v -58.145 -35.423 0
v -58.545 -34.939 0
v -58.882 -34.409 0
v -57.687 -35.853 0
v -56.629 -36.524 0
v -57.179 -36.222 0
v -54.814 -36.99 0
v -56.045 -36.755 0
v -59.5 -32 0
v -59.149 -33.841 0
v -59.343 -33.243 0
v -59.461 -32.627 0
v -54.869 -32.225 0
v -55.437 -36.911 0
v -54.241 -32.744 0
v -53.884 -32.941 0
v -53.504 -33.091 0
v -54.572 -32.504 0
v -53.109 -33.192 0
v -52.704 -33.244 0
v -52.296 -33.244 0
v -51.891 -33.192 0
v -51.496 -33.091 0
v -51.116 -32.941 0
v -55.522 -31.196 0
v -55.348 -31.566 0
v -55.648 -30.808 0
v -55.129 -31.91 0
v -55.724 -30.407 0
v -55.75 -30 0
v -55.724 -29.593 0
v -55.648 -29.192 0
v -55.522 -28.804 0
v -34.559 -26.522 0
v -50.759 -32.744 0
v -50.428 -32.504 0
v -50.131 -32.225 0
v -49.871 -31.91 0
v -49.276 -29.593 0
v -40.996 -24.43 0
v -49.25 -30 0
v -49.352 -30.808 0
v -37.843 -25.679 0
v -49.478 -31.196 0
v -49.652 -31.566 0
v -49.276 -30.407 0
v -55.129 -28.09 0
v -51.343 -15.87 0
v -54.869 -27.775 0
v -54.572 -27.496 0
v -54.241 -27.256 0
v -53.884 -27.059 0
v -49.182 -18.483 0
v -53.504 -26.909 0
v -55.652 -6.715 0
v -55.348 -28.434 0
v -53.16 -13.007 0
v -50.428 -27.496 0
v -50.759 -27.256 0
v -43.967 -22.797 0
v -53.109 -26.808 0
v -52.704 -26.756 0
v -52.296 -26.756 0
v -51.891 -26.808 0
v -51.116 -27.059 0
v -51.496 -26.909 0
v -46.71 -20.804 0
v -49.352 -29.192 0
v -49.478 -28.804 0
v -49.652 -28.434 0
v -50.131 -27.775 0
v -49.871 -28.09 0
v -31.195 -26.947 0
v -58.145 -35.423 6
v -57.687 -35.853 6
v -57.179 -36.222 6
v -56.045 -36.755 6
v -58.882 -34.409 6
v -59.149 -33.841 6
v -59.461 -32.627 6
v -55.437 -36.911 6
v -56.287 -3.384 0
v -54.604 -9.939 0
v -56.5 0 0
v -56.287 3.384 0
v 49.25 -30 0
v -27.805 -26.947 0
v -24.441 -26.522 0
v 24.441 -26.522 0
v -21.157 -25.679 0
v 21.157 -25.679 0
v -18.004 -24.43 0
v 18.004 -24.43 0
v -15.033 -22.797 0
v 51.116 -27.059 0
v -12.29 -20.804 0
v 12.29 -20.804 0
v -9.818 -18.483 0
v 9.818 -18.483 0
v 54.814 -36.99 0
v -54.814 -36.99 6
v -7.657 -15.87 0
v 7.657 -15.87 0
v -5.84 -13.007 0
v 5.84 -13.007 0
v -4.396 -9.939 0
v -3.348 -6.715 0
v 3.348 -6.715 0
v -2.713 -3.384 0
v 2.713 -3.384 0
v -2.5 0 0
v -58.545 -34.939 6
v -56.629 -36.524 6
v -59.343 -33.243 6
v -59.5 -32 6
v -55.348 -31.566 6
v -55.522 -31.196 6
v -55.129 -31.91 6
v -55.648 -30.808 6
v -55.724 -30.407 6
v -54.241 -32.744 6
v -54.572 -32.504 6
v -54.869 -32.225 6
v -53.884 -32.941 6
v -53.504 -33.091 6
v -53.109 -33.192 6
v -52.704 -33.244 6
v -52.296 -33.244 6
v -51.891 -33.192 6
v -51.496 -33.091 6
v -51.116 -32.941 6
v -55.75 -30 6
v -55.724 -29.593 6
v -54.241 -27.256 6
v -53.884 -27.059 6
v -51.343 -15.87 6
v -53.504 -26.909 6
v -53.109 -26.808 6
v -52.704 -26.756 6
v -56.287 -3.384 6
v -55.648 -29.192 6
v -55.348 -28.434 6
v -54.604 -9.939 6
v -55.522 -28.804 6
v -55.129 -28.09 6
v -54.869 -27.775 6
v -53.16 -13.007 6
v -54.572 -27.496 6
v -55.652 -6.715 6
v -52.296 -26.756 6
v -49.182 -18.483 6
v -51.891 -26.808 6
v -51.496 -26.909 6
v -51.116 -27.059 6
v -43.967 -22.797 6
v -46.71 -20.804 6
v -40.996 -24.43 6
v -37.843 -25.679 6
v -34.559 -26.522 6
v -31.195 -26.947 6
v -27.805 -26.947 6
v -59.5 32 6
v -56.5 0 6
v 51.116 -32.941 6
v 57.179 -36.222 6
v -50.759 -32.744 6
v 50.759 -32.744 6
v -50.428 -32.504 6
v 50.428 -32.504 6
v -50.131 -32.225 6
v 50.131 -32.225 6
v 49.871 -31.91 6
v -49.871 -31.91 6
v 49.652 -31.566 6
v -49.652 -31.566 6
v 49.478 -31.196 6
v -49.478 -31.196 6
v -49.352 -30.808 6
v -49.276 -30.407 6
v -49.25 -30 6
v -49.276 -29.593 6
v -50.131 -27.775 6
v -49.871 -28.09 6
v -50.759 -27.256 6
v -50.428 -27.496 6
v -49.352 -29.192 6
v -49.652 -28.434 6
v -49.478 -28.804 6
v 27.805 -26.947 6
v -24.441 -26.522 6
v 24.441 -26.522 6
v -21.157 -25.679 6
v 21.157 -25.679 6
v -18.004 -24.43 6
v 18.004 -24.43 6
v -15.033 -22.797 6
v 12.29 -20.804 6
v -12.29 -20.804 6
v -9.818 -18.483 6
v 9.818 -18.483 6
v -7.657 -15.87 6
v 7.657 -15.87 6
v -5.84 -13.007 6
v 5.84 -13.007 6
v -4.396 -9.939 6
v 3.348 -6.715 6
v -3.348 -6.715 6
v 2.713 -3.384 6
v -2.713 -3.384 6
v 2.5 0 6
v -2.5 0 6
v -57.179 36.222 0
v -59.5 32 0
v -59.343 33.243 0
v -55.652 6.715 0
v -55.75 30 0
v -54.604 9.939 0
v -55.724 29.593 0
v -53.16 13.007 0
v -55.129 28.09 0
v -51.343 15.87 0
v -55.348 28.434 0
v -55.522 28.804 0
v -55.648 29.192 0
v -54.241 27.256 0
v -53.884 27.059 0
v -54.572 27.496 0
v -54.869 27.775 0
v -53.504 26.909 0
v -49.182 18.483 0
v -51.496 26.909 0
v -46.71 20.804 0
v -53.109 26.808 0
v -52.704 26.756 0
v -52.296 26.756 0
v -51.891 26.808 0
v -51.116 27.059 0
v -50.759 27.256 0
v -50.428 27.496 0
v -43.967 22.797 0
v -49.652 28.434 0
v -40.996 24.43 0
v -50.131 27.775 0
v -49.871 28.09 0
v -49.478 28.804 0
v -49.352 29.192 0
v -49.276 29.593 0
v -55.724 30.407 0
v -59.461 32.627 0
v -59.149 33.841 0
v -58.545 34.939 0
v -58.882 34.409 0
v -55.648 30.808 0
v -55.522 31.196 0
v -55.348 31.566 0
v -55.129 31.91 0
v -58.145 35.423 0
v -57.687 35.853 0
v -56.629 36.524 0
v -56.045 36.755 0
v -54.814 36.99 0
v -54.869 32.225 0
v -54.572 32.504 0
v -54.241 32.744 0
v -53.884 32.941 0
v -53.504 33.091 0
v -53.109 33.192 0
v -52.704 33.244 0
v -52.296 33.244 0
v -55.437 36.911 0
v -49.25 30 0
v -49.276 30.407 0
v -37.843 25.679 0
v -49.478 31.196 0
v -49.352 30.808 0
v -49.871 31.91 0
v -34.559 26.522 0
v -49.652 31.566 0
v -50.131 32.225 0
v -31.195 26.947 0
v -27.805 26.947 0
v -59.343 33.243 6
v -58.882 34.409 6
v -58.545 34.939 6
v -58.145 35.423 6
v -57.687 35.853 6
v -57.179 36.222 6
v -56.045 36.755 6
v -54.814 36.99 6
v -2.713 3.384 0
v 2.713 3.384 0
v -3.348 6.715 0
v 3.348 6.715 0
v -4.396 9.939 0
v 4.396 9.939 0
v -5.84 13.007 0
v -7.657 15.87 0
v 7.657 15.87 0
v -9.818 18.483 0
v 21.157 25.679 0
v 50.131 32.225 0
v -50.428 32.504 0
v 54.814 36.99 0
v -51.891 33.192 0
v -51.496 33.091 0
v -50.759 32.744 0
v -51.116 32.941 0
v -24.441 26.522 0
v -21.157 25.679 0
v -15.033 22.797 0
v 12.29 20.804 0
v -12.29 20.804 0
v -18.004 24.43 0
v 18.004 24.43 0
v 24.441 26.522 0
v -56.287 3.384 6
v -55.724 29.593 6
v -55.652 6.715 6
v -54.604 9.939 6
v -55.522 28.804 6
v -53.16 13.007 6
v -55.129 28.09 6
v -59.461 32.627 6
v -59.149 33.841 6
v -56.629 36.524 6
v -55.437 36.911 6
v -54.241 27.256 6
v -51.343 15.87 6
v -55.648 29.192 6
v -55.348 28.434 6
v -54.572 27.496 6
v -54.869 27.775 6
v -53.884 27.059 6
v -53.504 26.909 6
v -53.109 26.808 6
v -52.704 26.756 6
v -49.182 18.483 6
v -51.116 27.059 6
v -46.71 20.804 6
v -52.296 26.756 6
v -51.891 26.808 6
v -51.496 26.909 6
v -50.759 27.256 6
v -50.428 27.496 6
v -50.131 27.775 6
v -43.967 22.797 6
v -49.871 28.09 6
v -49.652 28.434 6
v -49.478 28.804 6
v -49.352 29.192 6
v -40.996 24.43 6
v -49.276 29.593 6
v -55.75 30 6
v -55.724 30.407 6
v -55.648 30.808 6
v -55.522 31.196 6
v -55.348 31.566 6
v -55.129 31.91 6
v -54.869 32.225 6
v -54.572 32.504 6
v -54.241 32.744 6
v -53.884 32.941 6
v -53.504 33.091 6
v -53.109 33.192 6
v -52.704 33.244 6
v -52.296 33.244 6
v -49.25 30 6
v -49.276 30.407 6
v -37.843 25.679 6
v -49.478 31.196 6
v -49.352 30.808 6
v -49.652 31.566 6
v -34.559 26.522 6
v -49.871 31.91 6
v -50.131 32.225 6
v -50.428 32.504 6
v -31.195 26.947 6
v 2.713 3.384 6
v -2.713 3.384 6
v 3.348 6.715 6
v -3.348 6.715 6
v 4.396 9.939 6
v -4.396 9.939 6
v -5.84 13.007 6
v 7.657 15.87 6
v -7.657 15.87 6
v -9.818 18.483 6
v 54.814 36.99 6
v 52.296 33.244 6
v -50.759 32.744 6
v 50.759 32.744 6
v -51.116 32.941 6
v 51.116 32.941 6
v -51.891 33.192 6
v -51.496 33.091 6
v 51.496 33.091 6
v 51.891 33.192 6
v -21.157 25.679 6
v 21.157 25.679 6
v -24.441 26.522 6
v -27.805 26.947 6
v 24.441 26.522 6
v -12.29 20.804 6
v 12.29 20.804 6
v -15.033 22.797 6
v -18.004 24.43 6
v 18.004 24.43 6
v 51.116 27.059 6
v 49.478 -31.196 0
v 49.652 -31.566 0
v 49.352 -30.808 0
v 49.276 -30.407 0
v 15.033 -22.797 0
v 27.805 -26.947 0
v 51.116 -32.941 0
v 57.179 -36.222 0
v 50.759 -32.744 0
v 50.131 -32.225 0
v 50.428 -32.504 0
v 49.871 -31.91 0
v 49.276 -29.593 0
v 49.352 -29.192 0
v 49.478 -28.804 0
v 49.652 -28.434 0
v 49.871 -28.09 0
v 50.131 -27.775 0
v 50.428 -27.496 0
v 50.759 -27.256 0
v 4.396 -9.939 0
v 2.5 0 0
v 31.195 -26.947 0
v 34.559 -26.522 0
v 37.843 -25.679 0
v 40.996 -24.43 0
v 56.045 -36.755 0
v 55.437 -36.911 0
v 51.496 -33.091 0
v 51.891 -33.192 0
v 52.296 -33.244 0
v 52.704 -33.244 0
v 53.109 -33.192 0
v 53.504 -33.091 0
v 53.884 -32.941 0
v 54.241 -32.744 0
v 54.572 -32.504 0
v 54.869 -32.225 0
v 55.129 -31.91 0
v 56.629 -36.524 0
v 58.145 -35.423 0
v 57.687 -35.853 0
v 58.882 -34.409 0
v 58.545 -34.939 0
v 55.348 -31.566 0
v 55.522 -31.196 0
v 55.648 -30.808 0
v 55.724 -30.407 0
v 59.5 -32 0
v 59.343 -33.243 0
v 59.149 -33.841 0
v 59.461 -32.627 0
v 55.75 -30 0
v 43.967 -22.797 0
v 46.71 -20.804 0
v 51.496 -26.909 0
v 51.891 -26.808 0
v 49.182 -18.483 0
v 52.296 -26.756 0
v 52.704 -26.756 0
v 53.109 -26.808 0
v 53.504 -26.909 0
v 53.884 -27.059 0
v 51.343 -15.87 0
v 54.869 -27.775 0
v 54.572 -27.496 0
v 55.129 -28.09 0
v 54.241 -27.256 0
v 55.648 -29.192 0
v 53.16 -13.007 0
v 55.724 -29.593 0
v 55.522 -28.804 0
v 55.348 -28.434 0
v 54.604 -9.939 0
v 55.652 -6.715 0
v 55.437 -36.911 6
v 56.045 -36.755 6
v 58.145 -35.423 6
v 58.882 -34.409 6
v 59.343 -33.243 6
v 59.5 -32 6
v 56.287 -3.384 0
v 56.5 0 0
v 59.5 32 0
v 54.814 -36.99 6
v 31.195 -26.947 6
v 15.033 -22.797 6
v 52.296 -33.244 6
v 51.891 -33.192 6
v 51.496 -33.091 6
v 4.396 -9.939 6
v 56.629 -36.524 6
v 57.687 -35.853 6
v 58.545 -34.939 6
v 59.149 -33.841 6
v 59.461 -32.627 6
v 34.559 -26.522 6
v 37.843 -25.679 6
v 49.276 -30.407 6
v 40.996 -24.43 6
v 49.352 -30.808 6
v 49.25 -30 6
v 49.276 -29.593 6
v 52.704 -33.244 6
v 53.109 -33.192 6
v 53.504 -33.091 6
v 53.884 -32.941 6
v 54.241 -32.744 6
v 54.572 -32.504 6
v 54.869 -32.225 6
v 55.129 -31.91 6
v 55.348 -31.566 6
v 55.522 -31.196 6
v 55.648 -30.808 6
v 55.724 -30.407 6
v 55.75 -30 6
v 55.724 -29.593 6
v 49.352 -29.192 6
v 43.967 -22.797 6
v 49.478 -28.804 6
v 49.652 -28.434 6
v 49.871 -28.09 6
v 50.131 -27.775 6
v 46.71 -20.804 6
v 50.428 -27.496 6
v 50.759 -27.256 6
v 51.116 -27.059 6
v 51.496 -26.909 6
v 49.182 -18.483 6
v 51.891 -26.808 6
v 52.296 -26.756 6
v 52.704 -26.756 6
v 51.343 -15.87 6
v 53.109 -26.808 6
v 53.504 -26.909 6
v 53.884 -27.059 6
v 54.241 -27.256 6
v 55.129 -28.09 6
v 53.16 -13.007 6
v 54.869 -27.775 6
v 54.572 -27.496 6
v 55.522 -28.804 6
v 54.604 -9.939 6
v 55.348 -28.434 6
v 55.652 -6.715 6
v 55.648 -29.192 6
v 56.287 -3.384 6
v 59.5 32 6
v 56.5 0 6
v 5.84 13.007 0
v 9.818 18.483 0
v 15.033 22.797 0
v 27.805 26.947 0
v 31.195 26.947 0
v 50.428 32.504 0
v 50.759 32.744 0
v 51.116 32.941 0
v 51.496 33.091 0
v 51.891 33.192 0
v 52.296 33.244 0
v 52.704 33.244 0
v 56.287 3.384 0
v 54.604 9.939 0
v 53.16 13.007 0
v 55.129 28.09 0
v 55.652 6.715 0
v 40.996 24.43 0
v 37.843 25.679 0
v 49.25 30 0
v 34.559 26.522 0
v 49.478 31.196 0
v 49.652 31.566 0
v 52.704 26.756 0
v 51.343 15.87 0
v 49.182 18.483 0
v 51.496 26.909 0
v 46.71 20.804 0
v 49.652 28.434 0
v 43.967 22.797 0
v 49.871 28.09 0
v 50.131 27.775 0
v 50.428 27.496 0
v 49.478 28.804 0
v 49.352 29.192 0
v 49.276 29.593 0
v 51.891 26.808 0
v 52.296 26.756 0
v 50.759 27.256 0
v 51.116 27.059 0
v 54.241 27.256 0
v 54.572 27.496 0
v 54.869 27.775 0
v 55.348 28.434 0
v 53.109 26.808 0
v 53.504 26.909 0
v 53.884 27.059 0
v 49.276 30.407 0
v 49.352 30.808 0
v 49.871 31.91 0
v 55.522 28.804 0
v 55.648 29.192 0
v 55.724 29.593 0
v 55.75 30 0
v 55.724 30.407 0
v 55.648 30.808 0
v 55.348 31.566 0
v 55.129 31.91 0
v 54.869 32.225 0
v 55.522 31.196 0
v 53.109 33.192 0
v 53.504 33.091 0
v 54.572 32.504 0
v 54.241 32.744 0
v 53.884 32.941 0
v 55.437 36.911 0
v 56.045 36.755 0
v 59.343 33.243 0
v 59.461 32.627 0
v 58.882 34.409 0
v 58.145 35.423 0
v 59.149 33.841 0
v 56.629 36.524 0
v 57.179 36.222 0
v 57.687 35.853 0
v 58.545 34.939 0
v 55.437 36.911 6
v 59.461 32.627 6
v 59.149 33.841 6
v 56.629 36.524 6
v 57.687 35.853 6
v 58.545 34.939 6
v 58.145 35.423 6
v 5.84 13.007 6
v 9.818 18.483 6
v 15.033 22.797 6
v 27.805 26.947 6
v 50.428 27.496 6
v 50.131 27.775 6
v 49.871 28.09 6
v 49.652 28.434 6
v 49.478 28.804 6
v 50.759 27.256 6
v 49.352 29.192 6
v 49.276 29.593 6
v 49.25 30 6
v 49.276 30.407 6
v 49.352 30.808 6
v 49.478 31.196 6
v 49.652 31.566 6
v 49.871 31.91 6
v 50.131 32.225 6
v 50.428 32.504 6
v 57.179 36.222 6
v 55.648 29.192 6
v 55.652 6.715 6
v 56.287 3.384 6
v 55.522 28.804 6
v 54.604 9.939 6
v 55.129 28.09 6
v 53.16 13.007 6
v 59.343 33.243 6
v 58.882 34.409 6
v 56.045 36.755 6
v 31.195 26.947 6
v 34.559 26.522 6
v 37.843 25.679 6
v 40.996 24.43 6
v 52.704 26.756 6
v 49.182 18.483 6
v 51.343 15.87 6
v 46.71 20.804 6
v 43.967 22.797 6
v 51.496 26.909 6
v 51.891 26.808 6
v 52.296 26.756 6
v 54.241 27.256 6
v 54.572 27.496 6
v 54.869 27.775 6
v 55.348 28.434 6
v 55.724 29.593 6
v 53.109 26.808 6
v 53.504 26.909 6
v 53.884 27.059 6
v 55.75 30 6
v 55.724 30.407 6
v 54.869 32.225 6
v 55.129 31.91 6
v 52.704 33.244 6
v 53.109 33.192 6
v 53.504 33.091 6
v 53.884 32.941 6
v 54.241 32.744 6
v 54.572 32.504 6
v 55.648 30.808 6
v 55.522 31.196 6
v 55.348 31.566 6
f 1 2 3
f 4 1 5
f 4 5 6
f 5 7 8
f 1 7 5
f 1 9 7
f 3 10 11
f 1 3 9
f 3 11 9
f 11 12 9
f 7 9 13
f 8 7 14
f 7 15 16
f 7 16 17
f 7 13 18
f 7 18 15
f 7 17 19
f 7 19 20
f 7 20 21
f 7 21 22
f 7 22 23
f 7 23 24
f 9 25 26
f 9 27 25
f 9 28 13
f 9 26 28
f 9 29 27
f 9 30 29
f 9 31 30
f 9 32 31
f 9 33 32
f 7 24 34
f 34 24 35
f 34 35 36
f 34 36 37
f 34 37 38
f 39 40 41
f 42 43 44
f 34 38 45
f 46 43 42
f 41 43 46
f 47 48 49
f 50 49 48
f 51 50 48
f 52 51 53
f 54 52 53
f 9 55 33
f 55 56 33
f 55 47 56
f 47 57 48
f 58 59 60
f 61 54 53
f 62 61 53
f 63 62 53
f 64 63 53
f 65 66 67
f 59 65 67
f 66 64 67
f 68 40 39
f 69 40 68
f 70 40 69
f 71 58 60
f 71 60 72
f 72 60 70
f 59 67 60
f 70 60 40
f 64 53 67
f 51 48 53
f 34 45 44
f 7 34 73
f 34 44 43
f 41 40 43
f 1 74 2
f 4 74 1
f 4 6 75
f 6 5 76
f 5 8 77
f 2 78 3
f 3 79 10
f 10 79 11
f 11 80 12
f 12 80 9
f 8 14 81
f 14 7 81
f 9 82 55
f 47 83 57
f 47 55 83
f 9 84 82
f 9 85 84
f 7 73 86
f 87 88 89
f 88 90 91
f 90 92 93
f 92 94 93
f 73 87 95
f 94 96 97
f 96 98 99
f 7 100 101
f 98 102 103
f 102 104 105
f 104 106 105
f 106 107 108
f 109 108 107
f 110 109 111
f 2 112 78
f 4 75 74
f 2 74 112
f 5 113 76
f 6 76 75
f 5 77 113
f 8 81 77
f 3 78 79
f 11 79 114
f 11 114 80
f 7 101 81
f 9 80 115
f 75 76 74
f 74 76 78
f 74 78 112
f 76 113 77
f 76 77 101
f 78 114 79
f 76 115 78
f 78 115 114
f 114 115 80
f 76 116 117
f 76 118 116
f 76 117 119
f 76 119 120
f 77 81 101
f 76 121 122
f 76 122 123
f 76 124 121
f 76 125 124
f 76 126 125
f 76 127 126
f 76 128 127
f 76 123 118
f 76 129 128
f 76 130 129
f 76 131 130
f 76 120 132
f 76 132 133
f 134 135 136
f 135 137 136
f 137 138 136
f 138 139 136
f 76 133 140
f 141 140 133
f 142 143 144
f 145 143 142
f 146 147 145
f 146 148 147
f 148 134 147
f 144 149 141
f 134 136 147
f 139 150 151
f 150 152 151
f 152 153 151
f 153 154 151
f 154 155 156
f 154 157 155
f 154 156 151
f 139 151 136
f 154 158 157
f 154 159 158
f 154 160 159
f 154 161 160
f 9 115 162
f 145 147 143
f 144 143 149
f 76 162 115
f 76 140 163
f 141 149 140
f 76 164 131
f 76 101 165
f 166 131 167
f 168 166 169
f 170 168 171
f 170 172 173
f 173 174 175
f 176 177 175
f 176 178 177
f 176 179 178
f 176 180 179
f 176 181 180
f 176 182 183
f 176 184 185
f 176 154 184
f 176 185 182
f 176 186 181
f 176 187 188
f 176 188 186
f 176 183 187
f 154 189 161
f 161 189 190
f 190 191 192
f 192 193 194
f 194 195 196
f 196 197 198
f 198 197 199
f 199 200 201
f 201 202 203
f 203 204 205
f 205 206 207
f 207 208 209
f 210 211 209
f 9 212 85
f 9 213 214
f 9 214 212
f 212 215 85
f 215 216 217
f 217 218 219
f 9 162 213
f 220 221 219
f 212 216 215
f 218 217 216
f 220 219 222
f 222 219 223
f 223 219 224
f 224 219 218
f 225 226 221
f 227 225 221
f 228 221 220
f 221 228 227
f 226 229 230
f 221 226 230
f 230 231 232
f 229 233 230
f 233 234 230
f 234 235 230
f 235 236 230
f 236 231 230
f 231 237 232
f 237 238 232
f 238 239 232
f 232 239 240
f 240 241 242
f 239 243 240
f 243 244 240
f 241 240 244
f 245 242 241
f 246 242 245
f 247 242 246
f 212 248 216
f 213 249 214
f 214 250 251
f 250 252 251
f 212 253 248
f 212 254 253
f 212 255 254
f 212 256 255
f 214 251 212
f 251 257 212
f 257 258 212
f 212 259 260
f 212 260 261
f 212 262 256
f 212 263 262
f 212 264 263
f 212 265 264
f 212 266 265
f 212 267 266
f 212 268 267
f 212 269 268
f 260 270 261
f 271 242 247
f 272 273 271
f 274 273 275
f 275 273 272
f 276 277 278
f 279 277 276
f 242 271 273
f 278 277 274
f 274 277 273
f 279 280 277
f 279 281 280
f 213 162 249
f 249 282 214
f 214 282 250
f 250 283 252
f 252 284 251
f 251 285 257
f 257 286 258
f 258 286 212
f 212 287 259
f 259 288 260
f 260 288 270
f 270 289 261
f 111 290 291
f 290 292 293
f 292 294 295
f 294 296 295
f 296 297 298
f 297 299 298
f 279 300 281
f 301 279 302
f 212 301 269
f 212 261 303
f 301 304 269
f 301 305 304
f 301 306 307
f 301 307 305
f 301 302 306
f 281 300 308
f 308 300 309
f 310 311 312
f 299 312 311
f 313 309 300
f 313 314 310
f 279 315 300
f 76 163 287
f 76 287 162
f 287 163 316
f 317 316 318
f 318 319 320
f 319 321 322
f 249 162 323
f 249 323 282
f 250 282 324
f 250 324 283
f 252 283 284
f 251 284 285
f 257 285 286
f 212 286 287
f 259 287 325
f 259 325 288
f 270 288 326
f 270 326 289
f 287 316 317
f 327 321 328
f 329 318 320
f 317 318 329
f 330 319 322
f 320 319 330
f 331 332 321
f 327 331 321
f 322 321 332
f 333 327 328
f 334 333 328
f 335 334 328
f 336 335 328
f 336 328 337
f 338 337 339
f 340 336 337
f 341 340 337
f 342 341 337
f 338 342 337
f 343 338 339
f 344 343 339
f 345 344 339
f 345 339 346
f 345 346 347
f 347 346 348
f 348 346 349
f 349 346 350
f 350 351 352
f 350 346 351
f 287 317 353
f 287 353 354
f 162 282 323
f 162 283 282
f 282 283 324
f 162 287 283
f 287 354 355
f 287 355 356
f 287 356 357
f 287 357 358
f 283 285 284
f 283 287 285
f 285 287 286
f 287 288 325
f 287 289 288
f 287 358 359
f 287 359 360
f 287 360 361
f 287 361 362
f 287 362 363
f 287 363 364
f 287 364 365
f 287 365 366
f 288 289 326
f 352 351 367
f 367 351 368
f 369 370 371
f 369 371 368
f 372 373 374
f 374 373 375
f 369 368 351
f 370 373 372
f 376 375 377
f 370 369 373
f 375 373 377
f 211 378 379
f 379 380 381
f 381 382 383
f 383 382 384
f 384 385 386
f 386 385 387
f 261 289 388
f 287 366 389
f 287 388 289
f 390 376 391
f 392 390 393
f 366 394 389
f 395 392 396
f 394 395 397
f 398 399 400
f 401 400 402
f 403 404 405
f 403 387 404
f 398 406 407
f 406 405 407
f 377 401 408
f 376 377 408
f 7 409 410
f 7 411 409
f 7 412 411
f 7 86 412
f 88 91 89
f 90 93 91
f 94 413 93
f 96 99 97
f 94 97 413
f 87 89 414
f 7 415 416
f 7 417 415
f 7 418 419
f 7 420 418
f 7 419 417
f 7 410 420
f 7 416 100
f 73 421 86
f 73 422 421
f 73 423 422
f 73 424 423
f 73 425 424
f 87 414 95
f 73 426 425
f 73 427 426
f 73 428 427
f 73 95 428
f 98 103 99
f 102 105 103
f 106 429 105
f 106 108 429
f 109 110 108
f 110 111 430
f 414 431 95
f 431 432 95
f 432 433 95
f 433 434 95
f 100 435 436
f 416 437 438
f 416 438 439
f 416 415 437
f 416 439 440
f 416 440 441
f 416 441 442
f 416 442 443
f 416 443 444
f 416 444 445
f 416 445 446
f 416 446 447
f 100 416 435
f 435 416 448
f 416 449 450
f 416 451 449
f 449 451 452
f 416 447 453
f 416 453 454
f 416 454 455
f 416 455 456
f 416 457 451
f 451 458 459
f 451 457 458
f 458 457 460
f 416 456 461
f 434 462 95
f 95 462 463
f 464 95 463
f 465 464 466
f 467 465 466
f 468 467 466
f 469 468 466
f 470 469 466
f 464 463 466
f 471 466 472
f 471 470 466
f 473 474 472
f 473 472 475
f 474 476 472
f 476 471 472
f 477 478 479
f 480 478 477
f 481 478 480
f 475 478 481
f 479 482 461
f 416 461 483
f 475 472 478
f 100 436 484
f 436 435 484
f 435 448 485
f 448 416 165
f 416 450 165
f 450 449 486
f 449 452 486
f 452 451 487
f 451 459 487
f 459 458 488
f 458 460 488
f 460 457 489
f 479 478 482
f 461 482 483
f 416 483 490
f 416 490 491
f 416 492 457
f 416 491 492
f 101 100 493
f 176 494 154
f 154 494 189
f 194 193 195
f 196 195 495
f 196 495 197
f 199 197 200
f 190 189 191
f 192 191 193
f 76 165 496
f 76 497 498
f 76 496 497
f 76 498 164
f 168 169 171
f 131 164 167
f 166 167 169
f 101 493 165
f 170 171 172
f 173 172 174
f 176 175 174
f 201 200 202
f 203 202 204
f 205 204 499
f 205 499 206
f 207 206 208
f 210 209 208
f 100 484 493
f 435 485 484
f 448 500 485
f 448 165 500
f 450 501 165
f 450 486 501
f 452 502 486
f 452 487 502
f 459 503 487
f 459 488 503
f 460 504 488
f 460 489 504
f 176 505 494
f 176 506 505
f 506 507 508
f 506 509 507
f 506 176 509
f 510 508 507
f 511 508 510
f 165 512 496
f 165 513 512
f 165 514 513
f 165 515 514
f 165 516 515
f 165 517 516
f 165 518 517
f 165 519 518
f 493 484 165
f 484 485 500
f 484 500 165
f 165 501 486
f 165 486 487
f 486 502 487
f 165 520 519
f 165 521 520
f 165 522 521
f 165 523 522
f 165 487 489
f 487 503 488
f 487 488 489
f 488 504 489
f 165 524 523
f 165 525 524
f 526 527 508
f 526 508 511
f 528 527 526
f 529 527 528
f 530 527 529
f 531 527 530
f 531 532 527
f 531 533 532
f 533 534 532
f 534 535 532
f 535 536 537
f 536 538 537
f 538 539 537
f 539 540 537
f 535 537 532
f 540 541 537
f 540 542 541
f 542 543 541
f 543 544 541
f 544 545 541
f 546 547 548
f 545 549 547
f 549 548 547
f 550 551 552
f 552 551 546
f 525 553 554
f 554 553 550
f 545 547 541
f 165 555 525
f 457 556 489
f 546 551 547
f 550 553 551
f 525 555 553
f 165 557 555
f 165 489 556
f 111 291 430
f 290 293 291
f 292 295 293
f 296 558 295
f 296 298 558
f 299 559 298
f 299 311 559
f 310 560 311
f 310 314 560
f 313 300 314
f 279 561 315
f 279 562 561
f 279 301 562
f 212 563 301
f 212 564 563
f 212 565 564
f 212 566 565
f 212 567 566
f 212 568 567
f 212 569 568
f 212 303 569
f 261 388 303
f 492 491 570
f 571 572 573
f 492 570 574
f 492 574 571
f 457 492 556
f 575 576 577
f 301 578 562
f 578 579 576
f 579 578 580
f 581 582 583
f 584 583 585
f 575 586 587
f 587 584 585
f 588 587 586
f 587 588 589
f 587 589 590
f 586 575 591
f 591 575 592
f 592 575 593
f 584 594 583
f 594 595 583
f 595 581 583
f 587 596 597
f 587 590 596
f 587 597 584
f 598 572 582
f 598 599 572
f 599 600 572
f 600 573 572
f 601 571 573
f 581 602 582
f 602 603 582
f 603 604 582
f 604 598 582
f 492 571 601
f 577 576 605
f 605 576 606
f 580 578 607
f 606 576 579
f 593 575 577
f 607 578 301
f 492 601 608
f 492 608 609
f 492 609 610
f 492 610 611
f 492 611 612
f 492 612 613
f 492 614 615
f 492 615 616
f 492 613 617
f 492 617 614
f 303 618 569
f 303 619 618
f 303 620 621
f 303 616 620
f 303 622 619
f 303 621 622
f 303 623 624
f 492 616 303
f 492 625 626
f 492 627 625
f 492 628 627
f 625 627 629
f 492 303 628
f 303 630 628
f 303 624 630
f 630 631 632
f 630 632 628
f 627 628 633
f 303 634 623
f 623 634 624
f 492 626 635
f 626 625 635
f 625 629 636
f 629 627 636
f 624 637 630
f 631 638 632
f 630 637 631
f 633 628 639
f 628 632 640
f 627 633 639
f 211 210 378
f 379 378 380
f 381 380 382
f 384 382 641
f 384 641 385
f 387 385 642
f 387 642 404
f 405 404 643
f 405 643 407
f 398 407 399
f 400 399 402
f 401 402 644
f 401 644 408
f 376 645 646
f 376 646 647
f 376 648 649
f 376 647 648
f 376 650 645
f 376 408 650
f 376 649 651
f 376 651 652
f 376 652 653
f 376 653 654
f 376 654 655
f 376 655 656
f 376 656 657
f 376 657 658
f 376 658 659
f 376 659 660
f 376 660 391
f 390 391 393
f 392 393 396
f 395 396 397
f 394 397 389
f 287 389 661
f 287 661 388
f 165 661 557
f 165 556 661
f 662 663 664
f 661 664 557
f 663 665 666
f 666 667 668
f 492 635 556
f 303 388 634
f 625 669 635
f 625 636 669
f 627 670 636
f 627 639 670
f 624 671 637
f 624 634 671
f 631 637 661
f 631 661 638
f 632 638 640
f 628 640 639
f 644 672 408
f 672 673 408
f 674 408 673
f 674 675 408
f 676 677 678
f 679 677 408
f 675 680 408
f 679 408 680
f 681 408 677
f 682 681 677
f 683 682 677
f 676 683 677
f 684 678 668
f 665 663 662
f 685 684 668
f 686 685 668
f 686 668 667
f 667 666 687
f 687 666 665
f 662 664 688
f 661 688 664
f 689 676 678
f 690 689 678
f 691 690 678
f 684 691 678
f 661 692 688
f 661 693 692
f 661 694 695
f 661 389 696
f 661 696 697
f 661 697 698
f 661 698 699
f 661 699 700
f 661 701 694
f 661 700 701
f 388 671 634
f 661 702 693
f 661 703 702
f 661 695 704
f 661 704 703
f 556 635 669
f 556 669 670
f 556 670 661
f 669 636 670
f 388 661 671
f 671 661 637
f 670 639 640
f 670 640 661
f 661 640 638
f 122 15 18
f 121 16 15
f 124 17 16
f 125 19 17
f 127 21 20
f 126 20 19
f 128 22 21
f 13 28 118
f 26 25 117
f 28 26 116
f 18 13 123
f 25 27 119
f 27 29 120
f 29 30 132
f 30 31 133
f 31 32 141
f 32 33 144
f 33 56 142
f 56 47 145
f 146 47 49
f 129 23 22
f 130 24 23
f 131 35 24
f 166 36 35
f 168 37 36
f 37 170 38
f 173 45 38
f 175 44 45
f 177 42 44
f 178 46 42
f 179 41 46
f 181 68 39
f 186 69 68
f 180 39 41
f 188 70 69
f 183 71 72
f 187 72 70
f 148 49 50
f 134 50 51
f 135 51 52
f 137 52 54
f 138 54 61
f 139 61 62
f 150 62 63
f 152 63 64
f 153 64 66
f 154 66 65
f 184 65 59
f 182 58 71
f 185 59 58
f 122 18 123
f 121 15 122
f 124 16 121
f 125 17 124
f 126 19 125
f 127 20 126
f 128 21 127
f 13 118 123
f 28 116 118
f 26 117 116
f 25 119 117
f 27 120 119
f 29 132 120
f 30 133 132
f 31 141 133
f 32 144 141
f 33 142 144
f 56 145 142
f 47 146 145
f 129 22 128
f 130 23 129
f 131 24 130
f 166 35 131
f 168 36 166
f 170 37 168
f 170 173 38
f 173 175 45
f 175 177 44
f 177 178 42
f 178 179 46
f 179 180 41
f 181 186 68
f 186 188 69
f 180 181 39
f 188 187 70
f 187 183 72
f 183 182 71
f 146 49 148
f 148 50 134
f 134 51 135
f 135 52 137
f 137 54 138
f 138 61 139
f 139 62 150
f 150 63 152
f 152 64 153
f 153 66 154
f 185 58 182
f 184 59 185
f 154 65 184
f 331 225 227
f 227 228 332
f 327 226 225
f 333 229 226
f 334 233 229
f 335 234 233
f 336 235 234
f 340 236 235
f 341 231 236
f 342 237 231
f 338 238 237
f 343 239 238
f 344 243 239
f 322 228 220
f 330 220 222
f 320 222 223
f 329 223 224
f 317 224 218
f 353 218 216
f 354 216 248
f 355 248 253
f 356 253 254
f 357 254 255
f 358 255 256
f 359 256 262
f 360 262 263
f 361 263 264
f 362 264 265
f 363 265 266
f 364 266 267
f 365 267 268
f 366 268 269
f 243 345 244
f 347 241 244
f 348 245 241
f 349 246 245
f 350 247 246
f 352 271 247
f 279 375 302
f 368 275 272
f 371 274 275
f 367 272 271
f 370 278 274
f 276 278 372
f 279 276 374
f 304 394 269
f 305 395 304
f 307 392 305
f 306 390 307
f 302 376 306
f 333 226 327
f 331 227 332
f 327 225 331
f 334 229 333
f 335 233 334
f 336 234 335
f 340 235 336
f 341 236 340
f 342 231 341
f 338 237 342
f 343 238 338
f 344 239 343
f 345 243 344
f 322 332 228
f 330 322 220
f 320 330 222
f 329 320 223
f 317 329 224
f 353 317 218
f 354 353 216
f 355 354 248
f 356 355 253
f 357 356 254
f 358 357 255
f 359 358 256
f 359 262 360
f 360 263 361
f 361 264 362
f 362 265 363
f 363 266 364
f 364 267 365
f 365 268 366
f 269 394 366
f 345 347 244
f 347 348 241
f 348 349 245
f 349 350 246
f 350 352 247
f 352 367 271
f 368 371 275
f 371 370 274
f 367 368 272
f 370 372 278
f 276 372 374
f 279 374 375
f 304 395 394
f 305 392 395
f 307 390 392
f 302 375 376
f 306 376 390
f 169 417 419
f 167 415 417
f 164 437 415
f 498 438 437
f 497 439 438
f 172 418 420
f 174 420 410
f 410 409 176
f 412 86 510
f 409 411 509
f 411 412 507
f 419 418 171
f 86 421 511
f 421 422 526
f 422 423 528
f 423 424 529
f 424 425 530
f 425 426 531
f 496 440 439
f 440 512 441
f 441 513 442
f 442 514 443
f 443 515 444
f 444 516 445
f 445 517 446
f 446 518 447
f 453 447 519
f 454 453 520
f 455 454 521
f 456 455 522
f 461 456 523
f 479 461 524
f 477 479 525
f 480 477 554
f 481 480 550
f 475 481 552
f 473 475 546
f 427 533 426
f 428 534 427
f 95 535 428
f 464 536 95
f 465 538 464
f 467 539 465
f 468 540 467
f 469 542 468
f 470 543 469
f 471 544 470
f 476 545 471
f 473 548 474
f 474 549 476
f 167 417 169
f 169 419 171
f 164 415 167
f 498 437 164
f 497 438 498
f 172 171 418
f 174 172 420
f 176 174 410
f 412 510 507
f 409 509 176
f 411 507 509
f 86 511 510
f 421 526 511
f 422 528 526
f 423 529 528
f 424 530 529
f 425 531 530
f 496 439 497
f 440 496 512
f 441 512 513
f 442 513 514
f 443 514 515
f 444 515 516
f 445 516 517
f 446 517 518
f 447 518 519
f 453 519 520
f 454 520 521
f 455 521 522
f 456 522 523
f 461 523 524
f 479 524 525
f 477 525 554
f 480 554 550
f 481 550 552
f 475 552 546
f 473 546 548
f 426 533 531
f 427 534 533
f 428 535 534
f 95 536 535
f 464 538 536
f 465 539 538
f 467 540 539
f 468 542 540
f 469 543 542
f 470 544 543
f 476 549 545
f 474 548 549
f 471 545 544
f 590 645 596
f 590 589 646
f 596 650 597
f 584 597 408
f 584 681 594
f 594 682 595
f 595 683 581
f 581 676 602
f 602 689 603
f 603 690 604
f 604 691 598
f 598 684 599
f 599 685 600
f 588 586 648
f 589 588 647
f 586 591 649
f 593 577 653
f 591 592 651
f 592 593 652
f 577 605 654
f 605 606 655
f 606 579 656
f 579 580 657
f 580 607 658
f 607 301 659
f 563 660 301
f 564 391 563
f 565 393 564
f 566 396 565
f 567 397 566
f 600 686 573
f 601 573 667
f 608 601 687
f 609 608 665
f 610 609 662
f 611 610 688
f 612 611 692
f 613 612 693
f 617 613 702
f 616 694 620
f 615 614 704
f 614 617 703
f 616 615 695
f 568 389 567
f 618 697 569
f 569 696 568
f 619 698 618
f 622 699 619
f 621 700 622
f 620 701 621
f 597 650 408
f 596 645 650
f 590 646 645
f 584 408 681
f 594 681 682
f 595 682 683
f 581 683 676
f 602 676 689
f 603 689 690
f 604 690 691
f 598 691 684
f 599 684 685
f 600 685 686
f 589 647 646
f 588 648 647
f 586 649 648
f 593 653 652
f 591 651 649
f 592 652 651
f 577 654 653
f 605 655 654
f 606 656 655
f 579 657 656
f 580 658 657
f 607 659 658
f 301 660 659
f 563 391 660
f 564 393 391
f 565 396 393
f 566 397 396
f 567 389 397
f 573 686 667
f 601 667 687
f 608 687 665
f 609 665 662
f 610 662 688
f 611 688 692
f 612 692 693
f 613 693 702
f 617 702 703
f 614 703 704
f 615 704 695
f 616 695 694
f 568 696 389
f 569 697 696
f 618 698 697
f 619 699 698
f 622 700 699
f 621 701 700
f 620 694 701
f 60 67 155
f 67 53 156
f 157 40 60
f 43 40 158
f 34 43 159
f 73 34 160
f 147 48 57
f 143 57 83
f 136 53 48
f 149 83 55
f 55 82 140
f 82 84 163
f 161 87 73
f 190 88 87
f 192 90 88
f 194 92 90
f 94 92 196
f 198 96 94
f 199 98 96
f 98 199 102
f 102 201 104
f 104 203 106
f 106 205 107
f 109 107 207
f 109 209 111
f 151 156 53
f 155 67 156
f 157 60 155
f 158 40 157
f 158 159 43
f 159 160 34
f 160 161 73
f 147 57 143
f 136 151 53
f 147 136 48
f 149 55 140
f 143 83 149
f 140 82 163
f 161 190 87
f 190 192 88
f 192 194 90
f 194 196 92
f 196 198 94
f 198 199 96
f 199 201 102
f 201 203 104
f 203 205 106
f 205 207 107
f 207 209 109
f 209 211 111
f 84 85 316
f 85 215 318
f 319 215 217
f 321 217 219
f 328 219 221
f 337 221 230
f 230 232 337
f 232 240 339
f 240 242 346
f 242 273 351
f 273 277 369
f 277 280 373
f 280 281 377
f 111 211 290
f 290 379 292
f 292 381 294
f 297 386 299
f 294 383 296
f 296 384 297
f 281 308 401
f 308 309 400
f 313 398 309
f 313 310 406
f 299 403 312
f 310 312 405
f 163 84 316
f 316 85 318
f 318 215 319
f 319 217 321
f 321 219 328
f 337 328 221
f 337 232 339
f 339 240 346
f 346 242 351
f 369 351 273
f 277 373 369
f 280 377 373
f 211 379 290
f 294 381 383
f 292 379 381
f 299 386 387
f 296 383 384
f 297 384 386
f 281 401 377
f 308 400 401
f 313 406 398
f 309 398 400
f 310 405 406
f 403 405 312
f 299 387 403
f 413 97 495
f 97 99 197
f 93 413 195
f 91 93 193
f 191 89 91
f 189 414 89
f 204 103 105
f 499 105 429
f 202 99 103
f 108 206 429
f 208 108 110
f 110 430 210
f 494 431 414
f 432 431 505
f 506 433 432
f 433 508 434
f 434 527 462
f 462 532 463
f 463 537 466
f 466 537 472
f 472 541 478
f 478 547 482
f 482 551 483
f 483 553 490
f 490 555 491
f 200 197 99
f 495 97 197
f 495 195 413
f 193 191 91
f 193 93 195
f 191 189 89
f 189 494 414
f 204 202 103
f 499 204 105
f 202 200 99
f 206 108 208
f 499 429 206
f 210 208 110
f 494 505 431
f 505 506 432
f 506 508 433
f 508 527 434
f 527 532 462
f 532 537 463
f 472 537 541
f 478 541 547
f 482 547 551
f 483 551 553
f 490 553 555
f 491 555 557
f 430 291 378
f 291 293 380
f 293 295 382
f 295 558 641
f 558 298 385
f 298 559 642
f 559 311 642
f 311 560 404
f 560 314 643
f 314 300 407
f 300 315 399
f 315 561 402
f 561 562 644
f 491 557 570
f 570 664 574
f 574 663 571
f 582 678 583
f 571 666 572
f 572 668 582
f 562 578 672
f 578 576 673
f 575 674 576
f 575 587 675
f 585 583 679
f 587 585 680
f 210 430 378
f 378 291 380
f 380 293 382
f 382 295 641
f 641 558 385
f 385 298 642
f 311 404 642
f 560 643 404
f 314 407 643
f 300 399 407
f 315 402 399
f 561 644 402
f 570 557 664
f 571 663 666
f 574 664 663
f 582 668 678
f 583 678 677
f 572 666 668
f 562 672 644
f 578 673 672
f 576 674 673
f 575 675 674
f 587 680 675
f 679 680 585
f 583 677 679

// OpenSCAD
$fn = 50;

difference() {
	union() {
		hull() {
			translate(v = [-54.5, 32.0, 0]) {
				cylinder(h = 6, r = 5);
			}
			translate(v = [54.5, 32.0, 0]) {
				cylinder(h = 6, r = 5);
			}
			translate(v = [-54.5, -32.0, 0]) {
				cylinder(h = 6, r = 5);
			}
			translate(v = [54.5, -32.0, 0]) {
				cylinder(h = 6, r = 5);
			}
		}
	}
	union() {
		translate(v = [-52.5, -30.0, -100.0]) {
			cylinder(h = 200, r = 3.25);
		}
		translate(v = [-52.5, 30.0, -100.0]) {
			cylinder(h = 200, r = 3.25);
		}
		translate(v = [52.5, -30.0, -100.0]) {
			cylinder(h = 200, r = 3.25);
		}
		translate(v = [52.5, 30.0, -100.0]) {
			cylinder(h = 200, r = 3.25);
		}
		translate(v = [-52.5, -30.0, -100.0]) {
			cylinder(h = 200, r = 1.8);
		}
		translate(v = [-52.5, 30.0, -100.0]) {
			cylinder(h = 200, r = 1.8);
		}
		translate(v = [52.5, -30.0, -100.0]) {
			cylinder(h = 200, r = 1.8);
		}
		translate(v = [52.5, 30.0, -100.0]) {
			cylinder(h = 200, r = 1.8);
		}
		translate(v = [-29.5, 0, 0.0]) {
			cylinder(h = 6, r = 27.0);
		}
		translate(v = [29.5, 0, 0.0]) {
			cylinder(h = 6, r = 27.0);
		}
	}
}
